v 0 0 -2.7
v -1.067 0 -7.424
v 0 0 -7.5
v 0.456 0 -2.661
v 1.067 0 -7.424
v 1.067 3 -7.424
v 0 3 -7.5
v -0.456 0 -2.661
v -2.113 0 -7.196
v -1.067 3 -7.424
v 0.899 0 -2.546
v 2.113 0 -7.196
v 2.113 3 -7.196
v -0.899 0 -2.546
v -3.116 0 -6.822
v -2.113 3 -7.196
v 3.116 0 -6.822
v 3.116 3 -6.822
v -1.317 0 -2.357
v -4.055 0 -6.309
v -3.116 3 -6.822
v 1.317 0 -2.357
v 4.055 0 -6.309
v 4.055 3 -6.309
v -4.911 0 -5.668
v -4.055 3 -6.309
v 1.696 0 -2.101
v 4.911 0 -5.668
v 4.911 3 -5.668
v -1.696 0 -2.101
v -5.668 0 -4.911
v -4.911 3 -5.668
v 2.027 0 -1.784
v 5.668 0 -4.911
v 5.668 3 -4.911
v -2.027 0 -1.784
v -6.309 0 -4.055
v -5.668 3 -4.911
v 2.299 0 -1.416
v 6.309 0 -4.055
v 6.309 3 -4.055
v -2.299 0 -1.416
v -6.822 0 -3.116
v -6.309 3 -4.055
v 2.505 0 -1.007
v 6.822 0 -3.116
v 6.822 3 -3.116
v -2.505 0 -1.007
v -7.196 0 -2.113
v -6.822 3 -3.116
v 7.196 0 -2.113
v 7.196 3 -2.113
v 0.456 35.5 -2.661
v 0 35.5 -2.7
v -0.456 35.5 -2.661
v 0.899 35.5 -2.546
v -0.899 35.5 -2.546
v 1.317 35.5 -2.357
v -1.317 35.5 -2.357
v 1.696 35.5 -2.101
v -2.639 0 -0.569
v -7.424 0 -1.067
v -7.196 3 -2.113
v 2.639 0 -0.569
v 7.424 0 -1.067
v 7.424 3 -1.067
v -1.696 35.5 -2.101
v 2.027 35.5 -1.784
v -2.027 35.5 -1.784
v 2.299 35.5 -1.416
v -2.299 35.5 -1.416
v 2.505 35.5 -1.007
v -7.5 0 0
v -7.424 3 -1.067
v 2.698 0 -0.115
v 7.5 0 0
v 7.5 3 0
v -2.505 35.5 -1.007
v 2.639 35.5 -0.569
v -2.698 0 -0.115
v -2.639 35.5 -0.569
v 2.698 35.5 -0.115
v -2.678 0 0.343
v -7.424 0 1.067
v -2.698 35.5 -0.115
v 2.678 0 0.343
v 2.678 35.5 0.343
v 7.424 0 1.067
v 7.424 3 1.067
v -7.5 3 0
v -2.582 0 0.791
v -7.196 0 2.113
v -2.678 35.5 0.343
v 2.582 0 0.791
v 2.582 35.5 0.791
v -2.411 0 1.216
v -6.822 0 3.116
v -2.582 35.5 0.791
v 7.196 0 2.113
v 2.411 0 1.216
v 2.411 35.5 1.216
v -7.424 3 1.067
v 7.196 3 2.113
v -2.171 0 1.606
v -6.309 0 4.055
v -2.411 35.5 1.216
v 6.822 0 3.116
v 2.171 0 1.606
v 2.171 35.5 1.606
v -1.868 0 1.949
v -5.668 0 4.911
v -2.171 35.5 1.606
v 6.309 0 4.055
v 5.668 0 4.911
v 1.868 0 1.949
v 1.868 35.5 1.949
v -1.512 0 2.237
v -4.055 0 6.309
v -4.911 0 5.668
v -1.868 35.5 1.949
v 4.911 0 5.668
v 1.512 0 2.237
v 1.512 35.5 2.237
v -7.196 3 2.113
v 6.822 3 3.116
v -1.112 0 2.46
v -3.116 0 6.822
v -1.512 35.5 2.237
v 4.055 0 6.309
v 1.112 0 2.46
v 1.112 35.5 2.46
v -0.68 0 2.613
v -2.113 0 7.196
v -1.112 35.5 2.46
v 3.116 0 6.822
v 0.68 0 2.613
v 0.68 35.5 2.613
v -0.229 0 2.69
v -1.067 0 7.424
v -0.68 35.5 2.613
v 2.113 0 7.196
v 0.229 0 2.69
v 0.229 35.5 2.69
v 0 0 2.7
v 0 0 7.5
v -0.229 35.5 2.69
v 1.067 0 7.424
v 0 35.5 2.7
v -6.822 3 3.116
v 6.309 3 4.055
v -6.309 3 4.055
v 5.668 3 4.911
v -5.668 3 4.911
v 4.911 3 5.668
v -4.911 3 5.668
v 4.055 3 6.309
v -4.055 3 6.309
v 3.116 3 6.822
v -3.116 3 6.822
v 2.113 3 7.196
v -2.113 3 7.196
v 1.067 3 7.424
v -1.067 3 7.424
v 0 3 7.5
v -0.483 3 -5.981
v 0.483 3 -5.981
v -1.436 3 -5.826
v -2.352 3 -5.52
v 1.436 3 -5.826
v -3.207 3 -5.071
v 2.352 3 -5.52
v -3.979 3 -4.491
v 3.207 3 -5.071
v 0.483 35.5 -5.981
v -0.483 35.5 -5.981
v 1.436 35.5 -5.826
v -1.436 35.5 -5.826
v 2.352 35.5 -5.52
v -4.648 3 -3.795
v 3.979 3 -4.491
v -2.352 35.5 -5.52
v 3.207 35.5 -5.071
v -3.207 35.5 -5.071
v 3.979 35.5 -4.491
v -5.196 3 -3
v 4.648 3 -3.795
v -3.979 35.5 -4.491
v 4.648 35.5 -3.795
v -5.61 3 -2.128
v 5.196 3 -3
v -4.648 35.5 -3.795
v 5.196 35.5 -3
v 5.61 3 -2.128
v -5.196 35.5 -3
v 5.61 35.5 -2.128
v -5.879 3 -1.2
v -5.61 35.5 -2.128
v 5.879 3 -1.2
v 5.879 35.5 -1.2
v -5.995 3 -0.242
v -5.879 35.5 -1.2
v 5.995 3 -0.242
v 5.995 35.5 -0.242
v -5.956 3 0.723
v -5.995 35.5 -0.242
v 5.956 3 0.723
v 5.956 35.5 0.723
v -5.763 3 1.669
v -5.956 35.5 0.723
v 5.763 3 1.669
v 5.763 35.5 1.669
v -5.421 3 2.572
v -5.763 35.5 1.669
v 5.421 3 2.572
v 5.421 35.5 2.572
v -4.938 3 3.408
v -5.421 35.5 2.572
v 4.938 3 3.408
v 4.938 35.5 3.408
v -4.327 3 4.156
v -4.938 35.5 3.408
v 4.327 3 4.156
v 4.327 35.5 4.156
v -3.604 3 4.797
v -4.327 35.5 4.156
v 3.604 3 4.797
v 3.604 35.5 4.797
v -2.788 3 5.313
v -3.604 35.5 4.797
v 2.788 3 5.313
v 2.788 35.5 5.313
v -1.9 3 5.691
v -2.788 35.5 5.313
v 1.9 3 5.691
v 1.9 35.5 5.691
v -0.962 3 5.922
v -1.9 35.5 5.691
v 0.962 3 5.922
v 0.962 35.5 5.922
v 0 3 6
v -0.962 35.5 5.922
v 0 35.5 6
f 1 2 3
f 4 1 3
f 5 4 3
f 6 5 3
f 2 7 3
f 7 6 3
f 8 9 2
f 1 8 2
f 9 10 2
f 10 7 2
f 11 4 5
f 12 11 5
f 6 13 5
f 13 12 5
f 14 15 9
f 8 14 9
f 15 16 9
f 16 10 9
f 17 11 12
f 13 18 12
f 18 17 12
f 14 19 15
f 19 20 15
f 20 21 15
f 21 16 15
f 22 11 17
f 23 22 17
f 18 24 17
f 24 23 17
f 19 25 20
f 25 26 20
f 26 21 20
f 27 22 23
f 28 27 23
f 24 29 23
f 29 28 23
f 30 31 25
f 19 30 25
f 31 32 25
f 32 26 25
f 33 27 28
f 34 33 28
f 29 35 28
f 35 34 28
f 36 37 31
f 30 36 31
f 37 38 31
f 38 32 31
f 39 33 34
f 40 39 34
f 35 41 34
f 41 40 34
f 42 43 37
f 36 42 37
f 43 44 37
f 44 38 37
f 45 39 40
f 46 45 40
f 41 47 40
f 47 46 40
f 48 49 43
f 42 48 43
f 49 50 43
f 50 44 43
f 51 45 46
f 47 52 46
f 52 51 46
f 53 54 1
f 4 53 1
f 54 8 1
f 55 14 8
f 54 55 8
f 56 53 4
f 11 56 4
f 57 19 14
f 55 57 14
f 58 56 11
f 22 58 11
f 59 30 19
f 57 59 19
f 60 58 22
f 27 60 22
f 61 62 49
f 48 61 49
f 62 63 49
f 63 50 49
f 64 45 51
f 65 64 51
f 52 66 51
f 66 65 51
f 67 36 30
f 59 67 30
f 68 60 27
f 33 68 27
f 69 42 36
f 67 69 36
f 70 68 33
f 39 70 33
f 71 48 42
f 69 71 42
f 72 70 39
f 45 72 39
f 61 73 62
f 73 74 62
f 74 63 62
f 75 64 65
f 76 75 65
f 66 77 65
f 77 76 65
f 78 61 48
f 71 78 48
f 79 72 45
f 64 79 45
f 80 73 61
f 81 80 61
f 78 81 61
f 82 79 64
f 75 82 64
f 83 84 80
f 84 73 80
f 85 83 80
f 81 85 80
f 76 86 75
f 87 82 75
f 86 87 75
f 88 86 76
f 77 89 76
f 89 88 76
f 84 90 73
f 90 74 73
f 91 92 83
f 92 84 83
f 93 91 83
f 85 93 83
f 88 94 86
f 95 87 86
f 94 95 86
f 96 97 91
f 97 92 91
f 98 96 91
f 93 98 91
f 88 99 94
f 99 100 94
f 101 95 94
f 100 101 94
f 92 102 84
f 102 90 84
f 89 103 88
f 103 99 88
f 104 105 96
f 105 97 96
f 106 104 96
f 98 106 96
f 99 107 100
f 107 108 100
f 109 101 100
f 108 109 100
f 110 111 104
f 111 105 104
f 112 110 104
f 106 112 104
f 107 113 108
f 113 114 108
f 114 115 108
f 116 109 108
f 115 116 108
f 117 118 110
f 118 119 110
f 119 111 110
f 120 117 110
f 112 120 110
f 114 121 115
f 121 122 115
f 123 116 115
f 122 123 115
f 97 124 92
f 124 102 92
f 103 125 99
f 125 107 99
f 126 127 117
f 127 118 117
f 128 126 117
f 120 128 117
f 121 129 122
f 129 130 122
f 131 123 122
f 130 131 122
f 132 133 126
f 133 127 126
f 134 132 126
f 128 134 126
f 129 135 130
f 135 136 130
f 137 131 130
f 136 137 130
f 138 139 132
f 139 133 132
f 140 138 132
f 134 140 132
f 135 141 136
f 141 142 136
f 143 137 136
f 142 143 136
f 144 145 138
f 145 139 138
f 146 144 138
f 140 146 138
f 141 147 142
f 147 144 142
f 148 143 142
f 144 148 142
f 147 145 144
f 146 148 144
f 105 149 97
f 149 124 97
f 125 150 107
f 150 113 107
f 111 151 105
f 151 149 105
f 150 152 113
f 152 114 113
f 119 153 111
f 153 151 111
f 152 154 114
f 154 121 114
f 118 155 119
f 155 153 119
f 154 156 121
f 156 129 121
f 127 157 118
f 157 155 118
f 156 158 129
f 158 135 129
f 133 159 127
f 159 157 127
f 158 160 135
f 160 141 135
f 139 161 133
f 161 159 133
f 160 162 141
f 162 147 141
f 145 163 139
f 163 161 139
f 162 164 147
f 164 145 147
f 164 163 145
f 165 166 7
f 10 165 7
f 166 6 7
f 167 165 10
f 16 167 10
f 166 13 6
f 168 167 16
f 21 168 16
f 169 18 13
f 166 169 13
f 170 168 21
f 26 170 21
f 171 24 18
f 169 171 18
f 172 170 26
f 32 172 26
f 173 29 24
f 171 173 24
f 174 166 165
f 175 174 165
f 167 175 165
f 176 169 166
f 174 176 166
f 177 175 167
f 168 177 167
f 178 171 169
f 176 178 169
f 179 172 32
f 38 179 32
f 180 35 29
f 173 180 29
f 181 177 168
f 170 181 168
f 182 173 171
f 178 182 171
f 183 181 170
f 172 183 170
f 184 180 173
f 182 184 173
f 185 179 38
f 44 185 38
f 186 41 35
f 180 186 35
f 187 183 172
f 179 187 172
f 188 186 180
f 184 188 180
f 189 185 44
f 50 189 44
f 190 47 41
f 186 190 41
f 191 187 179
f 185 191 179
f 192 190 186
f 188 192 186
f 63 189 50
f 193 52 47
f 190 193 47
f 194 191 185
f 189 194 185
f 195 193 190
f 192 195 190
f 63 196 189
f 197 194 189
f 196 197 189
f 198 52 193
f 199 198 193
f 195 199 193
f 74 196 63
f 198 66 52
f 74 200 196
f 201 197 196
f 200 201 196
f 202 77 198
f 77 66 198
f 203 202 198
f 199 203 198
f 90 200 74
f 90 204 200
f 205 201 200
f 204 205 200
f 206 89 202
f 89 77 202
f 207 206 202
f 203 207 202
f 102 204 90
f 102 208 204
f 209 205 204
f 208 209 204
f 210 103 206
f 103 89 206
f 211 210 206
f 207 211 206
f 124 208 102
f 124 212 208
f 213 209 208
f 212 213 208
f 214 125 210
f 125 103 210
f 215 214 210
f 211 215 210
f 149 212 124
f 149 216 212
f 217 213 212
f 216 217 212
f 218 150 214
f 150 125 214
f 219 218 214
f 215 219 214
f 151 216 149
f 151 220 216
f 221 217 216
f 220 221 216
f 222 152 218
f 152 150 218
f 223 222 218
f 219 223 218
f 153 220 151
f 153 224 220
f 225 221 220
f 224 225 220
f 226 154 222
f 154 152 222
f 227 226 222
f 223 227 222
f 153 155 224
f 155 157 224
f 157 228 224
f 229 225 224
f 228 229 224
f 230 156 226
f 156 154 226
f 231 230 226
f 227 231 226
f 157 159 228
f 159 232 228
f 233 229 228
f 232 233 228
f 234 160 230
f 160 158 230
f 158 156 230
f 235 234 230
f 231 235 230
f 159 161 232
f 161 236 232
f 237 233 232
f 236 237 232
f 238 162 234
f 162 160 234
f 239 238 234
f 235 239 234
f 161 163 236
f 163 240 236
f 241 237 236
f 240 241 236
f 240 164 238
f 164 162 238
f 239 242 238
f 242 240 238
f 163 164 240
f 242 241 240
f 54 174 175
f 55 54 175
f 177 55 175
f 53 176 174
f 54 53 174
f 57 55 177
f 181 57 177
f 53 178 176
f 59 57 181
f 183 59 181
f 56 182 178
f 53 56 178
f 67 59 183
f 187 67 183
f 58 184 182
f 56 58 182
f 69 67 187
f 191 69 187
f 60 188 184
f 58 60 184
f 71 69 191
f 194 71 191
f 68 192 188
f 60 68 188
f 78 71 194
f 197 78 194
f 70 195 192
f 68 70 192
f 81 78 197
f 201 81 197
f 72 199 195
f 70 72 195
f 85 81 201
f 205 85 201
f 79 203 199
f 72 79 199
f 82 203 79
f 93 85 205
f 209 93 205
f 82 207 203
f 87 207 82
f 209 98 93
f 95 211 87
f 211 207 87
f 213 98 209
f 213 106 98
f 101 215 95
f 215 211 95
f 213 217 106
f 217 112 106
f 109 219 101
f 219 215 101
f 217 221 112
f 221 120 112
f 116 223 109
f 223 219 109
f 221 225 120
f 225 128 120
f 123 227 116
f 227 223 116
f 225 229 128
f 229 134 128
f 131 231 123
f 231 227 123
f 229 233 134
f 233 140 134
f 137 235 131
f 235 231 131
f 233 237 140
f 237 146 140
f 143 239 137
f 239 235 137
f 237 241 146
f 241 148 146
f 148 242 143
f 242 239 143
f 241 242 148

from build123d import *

# Parameters (mm, degrees)
SKETCH_1_R      = 7.5
SKETCH_1_R_2    = 2.7
EXTRUDE_1_DEPTH = 3
SKETCH_3_R      = 4
SKETCH_3_R_2    = 2.7
EXTRUDE_3_DEPTH = 32.5
EXTRUDE_START   = -32.5
SKETCH_4_R      = 6
SKETCH_4_R_2    = 2.7
EXTRUDE_4_DEPTH = 32.5


with BuildPart() as part:
    # 草圖1 → 填料-伸長1 (new body)
    with BuildSketch(Plane(origin=(0, 0, 0), x_dir=(1, 0, 0), z_dir=(0, 1, 0))):
        with Locations(Location((0, 0, 0), (0, 0, 270))):
            Circle(SKETCH_1_R)
        with Locations(Location((0, 0, 0), (0, 0, 270))):
            Circle(SKETCH_1_R_2, mode=Mode.SUBTRACT)
    extrude(amount=EXTRUDE_1_DEPTH)

    # 草圖3 → 填料-伸長3 (add)
    with BuildSketch(Plane(origin=(0, 3, 0), x_dir=(1, 0, 0), z_dir=(0, 1, 0))):
        with Locations(Location((0, 0, 0), (0, 0, 270))):
            Circle(SKETCH_3_R)
        with Locations(Location((0, 0, 0), (0, 0, 270))):
            Circle(SKETCH_3_R_2, mode=Mode.SUBTRACT)
    extrude(amount=EXTRUDE_3_DEPTH)

    # 草圖4 → 填料-伸長4 (add)
    with BuildSketch(Plane(origin=(0, 35.5, 0), x_dir=(1, 0, 0), z_dir=(0, 1, 0)).offset(EXTRUDE_START)):
        with Locations(Location((0, 0, 0), (0, 0, 270))):
            Circle(SKETCH_4_R)
        with Locations(Location((0, 0, 0), (0, 0, 270))):
            Circle(SKETCH_4_R_2, mode=Mode.SUBTRACT)
    extrude(amount=EXTRUDE_4_DEPTH)


solid = part.part
